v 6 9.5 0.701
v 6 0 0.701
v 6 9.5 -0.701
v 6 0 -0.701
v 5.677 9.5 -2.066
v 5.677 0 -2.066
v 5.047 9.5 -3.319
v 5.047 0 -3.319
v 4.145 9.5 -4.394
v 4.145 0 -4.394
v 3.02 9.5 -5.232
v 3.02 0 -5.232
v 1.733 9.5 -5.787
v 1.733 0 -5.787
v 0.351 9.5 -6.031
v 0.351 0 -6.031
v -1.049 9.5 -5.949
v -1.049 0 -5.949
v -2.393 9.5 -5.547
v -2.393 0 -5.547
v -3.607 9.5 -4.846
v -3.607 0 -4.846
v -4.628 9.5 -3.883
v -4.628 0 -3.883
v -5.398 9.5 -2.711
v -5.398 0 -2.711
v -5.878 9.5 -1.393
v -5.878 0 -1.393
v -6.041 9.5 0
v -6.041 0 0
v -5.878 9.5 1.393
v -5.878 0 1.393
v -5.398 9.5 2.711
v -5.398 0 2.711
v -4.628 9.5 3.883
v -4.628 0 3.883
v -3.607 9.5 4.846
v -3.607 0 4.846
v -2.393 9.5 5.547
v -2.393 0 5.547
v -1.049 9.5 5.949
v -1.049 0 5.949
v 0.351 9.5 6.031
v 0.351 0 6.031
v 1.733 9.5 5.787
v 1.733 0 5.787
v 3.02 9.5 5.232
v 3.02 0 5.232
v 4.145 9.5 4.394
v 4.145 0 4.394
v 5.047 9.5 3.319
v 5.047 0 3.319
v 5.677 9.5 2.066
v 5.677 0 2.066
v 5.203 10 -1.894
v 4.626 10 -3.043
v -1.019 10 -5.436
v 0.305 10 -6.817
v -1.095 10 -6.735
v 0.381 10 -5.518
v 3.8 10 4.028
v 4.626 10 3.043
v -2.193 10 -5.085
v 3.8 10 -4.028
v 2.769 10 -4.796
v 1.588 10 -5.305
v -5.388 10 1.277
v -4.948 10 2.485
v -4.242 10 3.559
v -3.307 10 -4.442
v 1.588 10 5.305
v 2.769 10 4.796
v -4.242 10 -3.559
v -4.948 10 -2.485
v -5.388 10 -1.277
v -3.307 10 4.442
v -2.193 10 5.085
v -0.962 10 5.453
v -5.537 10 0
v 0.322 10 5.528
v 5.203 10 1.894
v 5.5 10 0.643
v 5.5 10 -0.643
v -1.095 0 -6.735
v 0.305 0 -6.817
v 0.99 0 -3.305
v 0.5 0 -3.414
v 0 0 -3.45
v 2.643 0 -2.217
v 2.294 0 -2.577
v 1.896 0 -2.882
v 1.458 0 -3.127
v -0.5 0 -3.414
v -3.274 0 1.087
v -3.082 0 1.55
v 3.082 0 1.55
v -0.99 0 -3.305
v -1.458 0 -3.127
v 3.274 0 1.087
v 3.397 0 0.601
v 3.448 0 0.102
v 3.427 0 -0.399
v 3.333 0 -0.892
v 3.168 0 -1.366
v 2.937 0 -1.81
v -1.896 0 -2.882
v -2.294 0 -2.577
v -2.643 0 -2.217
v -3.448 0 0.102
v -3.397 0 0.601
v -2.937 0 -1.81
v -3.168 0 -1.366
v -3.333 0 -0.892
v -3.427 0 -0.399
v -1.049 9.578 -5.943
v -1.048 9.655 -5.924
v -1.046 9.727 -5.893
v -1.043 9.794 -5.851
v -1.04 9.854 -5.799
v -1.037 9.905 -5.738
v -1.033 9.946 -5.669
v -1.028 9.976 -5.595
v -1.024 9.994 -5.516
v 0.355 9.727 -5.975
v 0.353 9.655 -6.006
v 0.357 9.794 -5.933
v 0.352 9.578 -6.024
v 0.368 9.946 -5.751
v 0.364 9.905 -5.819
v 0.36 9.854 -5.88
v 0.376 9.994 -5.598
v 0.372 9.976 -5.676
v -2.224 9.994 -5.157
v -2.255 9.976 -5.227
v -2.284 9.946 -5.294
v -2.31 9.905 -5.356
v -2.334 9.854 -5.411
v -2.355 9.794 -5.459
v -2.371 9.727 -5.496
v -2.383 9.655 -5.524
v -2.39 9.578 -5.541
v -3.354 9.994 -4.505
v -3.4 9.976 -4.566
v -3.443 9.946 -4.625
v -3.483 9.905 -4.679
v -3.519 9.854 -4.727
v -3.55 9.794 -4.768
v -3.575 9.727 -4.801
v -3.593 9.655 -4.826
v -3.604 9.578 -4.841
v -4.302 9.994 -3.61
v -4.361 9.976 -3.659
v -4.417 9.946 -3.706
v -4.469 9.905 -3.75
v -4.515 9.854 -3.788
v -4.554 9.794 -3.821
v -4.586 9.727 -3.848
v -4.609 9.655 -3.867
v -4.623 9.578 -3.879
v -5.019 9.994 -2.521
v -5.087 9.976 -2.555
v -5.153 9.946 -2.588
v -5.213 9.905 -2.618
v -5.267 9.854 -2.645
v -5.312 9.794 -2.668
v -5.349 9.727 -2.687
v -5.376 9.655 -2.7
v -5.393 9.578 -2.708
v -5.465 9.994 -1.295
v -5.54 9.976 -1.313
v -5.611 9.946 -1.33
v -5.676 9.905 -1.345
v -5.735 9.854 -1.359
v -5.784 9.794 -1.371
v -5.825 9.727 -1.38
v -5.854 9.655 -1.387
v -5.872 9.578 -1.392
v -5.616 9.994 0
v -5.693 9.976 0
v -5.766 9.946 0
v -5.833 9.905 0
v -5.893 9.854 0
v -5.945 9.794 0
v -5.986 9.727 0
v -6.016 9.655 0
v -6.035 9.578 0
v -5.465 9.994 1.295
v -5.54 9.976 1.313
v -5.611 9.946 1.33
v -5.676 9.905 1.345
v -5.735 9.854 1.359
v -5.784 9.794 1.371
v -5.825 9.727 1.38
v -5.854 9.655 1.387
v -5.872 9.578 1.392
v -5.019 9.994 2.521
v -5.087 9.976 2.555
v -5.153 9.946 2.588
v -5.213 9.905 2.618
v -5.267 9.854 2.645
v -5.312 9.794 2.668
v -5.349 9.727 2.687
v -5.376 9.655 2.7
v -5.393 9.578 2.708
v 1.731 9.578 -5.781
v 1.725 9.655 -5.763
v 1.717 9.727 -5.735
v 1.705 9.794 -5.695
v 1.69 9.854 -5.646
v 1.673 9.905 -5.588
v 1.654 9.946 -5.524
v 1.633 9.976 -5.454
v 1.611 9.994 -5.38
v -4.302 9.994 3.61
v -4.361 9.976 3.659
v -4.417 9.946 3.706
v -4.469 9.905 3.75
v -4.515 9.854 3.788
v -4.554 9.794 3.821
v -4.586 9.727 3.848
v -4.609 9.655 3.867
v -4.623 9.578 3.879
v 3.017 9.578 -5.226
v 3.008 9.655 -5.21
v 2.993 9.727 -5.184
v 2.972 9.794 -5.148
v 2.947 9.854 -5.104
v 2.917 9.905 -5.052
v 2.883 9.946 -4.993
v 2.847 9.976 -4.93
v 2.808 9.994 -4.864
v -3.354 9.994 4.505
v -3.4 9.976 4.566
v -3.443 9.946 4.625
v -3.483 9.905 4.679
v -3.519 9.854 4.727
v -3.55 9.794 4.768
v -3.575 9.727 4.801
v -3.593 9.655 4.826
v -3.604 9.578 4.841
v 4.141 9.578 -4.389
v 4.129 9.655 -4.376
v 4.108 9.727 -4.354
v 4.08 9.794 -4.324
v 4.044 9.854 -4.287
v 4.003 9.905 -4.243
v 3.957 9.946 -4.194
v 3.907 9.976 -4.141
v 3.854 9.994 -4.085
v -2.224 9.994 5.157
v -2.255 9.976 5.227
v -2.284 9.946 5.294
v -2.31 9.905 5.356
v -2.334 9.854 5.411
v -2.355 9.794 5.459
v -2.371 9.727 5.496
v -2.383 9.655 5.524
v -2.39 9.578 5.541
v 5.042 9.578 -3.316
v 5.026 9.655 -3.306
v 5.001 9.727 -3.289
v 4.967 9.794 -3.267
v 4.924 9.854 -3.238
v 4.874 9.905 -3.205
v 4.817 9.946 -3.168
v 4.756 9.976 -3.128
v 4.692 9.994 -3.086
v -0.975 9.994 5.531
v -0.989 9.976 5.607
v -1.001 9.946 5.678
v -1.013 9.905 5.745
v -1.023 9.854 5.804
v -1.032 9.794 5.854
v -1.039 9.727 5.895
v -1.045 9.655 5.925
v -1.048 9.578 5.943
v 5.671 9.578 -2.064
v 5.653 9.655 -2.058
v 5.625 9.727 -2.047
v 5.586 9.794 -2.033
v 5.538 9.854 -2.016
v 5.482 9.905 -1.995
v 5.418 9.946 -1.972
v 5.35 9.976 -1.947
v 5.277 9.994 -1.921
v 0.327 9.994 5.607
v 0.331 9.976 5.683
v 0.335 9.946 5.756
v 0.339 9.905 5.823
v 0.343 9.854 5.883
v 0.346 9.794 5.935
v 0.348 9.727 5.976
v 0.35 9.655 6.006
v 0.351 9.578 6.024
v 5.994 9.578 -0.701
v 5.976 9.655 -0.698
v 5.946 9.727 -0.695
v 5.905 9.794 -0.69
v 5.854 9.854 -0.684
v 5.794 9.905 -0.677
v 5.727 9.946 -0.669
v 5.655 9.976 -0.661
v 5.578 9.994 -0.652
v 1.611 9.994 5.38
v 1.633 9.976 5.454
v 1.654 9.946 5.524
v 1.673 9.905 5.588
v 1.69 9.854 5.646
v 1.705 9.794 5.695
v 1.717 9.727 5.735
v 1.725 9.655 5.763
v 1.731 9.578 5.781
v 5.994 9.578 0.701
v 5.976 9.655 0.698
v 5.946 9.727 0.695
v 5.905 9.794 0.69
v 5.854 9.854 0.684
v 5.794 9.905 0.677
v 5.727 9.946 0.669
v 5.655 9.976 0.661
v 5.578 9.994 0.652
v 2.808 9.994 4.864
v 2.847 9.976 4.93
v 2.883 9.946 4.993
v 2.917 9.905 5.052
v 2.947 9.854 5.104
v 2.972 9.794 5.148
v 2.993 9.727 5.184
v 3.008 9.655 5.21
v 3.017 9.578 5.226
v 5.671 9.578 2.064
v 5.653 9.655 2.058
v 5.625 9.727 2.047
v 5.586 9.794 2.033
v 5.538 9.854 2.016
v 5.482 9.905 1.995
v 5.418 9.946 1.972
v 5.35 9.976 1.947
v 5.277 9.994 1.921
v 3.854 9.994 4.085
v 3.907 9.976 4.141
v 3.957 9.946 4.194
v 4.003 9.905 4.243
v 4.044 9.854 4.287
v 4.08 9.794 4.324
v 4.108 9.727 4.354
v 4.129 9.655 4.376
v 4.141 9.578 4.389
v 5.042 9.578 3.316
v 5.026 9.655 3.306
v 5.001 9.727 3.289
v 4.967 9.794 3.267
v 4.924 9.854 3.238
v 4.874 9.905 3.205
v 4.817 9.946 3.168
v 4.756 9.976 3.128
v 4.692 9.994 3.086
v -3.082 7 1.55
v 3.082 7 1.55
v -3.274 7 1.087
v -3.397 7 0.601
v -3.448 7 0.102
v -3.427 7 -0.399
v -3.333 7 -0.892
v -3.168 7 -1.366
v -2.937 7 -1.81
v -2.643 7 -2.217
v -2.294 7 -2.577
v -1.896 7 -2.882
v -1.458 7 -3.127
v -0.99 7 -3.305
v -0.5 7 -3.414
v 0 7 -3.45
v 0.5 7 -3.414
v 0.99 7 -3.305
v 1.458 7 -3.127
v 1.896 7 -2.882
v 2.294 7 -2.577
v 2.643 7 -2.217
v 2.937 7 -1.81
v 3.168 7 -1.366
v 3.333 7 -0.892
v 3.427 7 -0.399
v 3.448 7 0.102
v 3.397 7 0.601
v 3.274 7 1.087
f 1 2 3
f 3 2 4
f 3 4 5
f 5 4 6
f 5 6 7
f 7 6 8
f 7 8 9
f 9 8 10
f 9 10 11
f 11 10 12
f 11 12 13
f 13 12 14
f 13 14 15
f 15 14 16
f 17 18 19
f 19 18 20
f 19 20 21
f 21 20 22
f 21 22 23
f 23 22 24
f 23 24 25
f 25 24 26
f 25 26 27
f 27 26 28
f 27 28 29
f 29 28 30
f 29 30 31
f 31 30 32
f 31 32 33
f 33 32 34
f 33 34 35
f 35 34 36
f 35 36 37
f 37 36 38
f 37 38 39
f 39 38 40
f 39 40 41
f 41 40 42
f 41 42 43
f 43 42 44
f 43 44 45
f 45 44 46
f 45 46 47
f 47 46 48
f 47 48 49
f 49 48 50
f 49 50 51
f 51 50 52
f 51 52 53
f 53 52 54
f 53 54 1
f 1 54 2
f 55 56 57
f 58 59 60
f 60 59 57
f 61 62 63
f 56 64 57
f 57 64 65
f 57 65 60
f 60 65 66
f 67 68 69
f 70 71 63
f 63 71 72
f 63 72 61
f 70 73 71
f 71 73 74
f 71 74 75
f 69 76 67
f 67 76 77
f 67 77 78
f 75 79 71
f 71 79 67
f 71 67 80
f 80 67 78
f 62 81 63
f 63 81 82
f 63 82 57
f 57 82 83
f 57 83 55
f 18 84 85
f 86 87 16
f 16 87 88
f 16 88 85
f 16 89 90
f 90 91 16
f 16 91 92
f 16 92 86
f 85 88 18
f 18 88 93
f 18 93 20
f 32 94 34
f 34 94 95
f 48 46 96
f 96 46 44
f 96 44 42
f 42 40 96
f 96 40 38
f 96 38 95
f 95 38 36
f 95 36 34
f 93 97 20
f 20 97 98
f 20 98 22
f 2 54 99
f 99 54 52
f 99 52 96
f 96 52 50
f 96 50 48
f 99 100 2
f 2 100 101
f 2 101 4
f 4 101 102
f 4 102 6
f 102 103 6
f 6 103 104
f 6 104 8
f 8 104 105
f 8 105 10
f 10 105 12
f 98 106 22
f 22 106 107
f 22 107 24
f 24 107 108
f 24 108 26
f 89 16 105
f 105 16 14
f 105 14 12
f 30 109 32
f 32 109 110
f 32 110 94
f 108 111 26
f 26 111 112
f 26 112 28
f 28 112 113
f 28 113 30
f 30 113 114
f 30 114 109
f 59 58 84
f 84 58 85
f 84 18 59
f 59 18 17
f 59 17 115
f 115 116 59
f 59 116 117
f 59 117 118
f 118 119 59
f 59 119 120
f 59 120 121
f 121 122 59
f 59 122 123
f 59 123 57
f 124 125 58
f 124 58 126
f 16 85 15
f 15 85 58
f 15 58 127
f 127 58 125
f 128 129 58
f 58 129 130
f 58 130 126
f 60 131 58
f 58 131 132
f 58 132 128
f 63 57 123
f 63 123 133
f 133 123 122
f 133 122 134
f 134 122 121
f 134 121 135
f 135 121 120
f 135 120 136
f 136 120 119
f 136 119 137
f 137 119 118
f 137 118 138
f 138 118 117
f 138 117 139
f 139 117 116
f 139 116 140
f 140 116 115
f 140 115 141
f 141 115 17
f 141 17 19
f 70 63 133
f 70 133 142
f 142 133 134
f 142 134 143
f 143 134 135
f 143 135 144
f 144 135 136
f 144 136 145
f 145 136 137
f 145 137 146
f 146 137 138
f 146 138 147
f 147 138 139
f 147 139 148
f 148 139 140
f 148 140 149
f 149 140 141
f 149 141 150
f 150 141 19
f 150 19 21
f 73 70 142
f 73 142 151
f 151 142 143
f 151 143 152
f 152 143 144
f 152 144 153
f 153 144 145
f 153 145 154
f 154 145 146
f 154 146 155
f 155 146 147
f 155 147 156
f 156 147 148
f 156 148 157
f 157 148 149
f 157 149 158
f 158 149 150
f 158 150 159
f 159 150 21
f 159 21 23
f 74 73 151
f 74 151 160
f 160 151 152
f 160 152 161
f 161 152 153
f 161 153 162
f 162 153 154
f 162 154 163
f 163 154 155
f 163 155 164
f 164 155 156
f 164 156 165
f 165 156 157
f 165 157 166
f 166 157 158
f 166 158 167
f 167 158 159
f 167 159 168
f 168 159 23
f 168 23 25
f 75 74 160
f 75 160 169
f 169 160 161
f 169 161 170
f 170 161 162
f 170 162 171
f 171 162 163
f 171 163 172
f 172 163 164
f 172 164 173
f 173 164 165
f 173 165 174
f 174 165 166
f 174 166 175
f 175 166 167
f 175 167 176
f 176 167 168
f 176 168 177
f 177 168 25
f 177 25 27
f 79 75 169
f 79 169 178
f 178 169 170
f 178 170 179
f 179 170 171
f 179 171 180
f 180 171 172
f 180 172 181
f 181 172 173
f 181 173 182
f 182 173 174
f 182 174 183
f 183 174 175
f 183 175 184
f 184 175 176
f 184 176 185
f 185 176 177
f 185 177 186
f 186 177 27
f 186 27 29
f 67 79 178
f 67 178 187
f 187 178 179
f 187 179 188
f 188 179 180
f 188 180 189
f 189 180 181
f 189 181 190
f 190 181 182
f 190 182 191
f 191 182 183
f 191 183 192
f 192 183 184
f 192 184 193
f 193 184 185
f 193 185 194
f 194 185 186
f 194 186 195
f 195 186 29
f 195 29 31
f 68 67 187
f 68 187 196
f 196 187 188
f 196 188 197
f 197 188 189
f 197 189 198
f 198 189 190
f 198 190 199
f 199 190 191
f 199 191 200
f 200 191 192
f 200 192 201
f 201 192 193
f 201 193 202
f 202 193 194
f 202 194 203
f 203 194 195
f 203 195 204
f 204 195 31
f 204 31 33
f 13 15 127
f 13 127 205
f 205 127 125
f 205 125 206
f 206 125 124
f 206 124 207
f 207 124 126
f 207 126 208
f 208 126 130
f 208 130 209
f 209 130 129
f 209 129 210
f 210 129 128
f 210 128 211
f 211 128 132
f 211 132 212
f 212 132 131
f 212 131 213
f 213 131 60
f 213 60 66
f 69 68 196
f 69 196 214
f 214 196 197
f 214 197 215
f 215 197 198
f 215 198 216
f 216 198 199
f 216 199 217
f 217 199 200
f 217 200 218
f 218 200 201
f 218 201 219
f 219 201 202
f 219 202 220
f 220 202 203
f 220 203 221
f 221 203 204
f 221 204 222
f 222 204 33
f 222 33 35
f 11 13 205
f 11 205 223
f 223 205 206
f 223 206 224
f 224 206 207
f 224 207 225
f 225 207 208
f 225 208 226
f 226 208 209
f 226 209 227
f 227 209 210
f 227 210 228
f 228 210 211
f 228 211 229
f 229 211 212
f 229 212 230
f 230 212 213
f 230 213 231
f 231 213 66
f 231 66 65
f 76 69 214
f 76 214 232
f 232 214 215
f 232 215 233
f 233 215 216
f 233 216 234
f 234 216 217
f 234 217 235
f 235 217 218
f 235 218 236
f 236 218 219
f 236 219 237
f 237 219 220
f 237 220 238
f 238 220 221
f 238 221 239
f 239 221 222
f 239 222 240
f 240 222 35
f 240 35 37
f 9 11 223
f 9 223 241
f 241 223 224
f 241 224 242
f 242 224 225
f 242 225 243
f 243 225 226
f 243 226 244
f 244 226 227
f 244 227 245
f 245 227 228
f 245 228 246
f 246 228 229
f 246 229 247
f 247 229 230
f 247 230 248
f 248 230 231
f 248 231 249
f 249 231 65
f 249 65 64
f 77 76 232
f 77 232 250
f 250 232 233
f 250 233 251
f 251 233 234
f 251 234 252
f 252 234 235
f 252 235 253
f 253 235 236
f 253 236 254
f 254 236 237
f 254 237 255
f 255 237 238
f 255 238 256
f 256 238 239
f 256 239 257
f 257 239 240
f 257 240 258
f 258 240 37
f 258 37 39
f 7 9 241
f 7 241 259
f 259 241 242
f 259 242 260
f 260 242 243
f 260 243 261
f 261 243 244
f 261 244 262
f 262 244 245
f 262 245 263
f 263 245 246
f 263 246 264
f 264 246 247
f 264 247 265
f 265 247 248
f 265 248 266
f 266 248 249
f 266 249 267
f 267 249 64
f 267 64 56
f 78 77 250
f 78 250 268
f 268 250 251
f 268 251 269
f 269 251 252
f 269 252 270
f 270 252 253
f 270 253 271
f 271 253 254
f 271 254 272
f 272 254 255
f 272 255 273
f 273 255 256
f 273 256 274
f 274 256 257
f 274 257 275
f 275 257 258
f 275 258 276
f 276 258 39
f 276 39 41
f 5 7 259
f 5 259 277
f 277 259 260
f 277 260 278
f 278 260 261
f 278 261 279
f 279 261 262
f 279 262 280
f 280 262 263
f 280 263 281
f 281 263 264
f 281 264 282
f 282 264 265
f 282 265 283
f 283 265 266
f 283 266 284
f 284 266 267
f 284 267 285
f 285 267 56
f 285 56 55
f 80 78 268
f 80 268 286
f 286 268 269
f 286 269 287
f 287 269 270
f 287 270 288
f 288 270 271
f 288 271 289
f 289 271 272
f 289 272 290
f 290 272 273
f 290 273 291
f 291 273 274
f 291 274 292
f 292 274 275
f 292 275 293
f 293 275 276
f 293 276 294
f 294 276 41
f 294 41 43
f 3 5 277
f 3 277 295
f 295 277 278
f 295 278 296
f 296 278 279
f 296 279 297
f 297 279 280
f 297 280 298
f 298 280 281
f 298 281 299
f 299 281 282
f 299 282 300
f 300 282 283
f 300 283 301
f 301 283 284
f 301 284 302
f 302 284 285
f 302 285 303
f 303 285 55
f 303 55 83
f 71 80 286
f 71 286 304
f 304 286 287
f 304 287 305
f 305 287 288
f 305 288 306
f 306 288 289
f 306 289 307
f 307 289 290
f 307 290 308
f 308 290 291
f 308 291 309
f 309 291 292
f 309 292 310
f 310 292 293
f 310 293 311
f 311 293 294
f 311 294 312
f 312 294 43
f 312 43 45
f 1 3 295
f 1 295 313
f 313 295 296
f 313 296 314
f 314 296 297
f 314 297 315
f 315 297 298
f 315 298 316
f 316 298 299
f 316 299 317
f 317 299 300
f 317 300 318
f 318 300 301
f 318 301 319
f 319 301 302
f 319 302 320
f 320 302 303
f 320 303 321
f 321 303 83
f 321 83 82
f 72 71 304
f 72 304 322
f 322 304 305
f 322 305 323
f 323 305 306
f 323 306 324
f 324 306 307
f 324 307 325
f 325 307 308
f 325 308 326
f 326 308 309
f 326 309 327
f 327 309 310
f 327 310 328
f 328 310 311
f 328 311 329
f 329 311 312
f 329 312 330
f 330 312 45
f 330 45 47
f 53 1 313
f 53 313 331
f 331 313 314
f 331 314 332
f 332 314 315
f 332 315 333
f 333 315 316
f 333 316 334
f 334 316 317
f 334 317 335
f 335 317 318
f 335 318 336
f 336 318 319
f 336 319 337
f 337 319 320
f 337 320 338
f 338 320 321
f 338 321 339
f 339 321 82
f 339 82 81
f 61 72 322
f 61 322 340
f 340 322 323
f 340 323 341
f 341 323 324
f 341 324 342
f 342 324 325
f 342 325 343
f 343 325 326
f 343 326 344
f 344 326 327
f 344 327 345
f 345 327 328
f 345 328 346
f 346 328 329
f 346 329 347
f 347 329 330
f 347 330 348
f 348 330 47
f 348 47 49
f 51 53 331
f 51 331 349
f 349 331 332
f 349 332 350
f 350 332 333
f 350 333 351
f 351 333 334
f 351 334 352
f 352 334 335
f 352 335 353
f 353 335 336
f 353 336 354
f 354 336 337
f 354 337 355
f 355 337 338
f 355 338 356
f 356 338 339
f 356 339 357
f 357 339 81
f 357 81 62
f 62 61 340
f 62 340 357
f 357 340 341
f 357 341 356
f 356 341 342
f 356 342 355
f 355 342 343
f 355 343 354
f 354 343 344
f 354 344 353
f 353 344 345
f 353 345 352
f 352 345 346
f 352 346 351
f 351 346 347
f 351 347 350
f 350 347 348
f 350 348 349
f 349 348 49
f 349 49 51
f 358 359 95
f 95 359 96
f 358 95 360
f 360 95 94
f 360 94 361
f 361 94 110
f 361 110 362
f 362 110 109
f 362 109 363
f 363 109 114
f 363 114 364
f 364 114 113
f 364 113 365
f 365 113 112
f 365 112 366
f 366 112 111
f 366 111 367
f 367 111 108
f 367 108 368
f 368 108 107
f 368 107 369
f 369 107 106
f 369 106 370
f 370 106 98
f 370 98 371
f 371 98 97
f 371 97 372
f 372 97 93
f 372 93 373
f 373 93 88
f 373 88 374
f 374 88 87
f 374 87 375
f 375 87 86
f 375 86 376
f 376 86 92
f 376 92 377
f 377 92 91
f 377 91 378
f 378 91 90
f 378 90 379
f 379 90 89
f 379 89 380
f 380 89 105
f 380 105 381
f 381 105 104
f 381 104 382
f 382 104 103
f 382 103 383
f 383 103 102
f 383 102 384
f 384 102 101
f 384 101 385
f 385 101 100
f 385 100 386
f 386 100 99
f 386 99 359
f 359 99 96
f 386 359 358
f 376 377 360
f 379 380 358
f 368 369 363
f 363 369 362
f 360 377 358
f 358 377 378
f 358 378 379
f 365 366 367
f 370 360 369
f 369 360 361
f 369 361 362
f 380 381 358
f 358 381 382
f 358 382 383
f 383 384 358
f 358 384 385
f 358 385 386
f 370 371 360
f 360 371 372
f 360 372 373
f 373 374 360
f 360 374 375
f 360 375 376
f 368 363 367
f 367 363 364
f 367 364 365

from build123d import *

# Parameters (mm, degrees)
BOSS_EXTRUDE1_DEPTH = 10
BOSS_EXTRUDE2_DEPTH = 10
FILLET2_R           = 0.5
CUT_EXTRUDE1_DEPTH  = 7


with BuildPart() as part:
    # Sketch1 → Boss-Extrude1 (new body)
    with BuildSketch(Plane(origin=(0, 0, 0), x_dir=(1, 0, 0), z_dir=(0, 1, 0))):
        Polygon((4.145480081, 4.393952182), (3.02042302, 5.231526131), (1.732534173, 5.787067152), (0.351243959, 6.030625884), (-1.048981906, 5.949072015), (-2.392656886, 5.546802133), (-3.607343114, 4.845502712), (-4.627556541, 3.882980986), (-5.398297196, 2.71112675), (-5.878014253, 1.39311497), (-6.04084604, 0), (-5.878014253, -1.39311497), (-5.398297196, -2.71112675), (-4.627556541, -3.882980986), (-3.607343114, -4.845502712), (-2.392656886, -5.546802133), (-1.048981906, -5.949072015), (0.351243959, -6.030625884), (1.732534173, -5.787067152), (3.02042302, -5.231526131), (4.145480081, -4.393952182), (5.047053237, -3.319499134), (5.676538447, -2.066091028), (6, -0.701299421), (6, 0.701299421), (5.676538447, 2.066091028), (5.047053237, 3.319499134), align=None)
    extrude(amount=BOSS_EXTRUDE1_DEPTH)

    # Sketch2 → Boss-Extrude2 (add)
    with BuildSketch(Plane(origin=(0, 0, 0), x_dir=(1, 0, 0), z_dir=(0, 1, 0))):
        Polygon((-1.094764488, 6.735128586), (0.305461378, 6.816682456), (0.351243959, 6.030625884), (-1.048981906, 5.949072015), align=None)
    extrude(amount=BOSS_EXTRUDE2_DEPTH)

    # Fillet2
    fillet2_edges = [part.edges().sort_by_distance(p)[0] for p in [
        (4.596266659, 10, 3.856725658),
        (5.361795842, 10, 2.692795081),
        (5.838269223, 10, 1.383695224),
        (5.361795842, 10, -2.692795081),
        (4.596266659, 10, -3.856725658),
        (3.58295155, 10, -4.812739157),
        (2.376478596, 10, -5.509296641),
        (1.041889066, 10, -5.908846518),
        (-1.720819396, 10, -5.747937074),
        (-3, 10, -5.196152423),
        (-4.117449827, 10, -4.364241849),
        (-5.012926868, 10, -3.297053868),
        (6, 10, 0),
        (-5.638155725, 10, -2.05212086),
        (-5.959430146, 10, -0.696557485),
        (-5.959430146, 10, 0.696557485),
        (-5.638155725, 10, 2.05212086),
        (-5.012926868, 10, 3.297053868),
        (-4.117449827, 10, 4.364241849),
        (-3, 10, 5.196152423),
        (-1.720819396, 10, 5.747937074),
        (-0.348868973, 10, 5.98984895),
        (1.041889066, 10, 5.908846518),
        (5.838269223, 10, -1.383695224),
        (2.376478596, 10, 5.509296641),
        (3.58295155, 10, 4.812739157),
    ]]
    fillet(fillet2_edges, radius=FILLET2_R)

    # Sketch4 → Cut-Extrude1 (cut)
    with BuildSketch(Plane(origin=(0, 0, 0), x_dir=(1, 0, 0), z_dir=(0, 1, 0))):
        with BuildLine():
            ThreePointArc((3.45, 0), (2.439518395, 2.439518395), (0, 3.45))
            Line((0, 3.45), (0, -1.55))
            Line((0, -1.55), (3.082207001, -1.55))
            ThreePointArc((3.082207001, -1.55), (3.356792677, -0.796519254), (3.45, 0))
        make_face()
        with BuildLine():
            Line((0, -1.55), (0, 3.45))
            ThreePointArc((0, 3.45), (-2.936835031, 1.810386699), (-3.082207001, -1.55))
            Line((-3.082207001, -1.55), (0, -1.55))
        make_face()
    extrude(amount=CUT_EXTRUDE1_DEPTH, mode=Mode.SUBTRACT)


solid = part.part
